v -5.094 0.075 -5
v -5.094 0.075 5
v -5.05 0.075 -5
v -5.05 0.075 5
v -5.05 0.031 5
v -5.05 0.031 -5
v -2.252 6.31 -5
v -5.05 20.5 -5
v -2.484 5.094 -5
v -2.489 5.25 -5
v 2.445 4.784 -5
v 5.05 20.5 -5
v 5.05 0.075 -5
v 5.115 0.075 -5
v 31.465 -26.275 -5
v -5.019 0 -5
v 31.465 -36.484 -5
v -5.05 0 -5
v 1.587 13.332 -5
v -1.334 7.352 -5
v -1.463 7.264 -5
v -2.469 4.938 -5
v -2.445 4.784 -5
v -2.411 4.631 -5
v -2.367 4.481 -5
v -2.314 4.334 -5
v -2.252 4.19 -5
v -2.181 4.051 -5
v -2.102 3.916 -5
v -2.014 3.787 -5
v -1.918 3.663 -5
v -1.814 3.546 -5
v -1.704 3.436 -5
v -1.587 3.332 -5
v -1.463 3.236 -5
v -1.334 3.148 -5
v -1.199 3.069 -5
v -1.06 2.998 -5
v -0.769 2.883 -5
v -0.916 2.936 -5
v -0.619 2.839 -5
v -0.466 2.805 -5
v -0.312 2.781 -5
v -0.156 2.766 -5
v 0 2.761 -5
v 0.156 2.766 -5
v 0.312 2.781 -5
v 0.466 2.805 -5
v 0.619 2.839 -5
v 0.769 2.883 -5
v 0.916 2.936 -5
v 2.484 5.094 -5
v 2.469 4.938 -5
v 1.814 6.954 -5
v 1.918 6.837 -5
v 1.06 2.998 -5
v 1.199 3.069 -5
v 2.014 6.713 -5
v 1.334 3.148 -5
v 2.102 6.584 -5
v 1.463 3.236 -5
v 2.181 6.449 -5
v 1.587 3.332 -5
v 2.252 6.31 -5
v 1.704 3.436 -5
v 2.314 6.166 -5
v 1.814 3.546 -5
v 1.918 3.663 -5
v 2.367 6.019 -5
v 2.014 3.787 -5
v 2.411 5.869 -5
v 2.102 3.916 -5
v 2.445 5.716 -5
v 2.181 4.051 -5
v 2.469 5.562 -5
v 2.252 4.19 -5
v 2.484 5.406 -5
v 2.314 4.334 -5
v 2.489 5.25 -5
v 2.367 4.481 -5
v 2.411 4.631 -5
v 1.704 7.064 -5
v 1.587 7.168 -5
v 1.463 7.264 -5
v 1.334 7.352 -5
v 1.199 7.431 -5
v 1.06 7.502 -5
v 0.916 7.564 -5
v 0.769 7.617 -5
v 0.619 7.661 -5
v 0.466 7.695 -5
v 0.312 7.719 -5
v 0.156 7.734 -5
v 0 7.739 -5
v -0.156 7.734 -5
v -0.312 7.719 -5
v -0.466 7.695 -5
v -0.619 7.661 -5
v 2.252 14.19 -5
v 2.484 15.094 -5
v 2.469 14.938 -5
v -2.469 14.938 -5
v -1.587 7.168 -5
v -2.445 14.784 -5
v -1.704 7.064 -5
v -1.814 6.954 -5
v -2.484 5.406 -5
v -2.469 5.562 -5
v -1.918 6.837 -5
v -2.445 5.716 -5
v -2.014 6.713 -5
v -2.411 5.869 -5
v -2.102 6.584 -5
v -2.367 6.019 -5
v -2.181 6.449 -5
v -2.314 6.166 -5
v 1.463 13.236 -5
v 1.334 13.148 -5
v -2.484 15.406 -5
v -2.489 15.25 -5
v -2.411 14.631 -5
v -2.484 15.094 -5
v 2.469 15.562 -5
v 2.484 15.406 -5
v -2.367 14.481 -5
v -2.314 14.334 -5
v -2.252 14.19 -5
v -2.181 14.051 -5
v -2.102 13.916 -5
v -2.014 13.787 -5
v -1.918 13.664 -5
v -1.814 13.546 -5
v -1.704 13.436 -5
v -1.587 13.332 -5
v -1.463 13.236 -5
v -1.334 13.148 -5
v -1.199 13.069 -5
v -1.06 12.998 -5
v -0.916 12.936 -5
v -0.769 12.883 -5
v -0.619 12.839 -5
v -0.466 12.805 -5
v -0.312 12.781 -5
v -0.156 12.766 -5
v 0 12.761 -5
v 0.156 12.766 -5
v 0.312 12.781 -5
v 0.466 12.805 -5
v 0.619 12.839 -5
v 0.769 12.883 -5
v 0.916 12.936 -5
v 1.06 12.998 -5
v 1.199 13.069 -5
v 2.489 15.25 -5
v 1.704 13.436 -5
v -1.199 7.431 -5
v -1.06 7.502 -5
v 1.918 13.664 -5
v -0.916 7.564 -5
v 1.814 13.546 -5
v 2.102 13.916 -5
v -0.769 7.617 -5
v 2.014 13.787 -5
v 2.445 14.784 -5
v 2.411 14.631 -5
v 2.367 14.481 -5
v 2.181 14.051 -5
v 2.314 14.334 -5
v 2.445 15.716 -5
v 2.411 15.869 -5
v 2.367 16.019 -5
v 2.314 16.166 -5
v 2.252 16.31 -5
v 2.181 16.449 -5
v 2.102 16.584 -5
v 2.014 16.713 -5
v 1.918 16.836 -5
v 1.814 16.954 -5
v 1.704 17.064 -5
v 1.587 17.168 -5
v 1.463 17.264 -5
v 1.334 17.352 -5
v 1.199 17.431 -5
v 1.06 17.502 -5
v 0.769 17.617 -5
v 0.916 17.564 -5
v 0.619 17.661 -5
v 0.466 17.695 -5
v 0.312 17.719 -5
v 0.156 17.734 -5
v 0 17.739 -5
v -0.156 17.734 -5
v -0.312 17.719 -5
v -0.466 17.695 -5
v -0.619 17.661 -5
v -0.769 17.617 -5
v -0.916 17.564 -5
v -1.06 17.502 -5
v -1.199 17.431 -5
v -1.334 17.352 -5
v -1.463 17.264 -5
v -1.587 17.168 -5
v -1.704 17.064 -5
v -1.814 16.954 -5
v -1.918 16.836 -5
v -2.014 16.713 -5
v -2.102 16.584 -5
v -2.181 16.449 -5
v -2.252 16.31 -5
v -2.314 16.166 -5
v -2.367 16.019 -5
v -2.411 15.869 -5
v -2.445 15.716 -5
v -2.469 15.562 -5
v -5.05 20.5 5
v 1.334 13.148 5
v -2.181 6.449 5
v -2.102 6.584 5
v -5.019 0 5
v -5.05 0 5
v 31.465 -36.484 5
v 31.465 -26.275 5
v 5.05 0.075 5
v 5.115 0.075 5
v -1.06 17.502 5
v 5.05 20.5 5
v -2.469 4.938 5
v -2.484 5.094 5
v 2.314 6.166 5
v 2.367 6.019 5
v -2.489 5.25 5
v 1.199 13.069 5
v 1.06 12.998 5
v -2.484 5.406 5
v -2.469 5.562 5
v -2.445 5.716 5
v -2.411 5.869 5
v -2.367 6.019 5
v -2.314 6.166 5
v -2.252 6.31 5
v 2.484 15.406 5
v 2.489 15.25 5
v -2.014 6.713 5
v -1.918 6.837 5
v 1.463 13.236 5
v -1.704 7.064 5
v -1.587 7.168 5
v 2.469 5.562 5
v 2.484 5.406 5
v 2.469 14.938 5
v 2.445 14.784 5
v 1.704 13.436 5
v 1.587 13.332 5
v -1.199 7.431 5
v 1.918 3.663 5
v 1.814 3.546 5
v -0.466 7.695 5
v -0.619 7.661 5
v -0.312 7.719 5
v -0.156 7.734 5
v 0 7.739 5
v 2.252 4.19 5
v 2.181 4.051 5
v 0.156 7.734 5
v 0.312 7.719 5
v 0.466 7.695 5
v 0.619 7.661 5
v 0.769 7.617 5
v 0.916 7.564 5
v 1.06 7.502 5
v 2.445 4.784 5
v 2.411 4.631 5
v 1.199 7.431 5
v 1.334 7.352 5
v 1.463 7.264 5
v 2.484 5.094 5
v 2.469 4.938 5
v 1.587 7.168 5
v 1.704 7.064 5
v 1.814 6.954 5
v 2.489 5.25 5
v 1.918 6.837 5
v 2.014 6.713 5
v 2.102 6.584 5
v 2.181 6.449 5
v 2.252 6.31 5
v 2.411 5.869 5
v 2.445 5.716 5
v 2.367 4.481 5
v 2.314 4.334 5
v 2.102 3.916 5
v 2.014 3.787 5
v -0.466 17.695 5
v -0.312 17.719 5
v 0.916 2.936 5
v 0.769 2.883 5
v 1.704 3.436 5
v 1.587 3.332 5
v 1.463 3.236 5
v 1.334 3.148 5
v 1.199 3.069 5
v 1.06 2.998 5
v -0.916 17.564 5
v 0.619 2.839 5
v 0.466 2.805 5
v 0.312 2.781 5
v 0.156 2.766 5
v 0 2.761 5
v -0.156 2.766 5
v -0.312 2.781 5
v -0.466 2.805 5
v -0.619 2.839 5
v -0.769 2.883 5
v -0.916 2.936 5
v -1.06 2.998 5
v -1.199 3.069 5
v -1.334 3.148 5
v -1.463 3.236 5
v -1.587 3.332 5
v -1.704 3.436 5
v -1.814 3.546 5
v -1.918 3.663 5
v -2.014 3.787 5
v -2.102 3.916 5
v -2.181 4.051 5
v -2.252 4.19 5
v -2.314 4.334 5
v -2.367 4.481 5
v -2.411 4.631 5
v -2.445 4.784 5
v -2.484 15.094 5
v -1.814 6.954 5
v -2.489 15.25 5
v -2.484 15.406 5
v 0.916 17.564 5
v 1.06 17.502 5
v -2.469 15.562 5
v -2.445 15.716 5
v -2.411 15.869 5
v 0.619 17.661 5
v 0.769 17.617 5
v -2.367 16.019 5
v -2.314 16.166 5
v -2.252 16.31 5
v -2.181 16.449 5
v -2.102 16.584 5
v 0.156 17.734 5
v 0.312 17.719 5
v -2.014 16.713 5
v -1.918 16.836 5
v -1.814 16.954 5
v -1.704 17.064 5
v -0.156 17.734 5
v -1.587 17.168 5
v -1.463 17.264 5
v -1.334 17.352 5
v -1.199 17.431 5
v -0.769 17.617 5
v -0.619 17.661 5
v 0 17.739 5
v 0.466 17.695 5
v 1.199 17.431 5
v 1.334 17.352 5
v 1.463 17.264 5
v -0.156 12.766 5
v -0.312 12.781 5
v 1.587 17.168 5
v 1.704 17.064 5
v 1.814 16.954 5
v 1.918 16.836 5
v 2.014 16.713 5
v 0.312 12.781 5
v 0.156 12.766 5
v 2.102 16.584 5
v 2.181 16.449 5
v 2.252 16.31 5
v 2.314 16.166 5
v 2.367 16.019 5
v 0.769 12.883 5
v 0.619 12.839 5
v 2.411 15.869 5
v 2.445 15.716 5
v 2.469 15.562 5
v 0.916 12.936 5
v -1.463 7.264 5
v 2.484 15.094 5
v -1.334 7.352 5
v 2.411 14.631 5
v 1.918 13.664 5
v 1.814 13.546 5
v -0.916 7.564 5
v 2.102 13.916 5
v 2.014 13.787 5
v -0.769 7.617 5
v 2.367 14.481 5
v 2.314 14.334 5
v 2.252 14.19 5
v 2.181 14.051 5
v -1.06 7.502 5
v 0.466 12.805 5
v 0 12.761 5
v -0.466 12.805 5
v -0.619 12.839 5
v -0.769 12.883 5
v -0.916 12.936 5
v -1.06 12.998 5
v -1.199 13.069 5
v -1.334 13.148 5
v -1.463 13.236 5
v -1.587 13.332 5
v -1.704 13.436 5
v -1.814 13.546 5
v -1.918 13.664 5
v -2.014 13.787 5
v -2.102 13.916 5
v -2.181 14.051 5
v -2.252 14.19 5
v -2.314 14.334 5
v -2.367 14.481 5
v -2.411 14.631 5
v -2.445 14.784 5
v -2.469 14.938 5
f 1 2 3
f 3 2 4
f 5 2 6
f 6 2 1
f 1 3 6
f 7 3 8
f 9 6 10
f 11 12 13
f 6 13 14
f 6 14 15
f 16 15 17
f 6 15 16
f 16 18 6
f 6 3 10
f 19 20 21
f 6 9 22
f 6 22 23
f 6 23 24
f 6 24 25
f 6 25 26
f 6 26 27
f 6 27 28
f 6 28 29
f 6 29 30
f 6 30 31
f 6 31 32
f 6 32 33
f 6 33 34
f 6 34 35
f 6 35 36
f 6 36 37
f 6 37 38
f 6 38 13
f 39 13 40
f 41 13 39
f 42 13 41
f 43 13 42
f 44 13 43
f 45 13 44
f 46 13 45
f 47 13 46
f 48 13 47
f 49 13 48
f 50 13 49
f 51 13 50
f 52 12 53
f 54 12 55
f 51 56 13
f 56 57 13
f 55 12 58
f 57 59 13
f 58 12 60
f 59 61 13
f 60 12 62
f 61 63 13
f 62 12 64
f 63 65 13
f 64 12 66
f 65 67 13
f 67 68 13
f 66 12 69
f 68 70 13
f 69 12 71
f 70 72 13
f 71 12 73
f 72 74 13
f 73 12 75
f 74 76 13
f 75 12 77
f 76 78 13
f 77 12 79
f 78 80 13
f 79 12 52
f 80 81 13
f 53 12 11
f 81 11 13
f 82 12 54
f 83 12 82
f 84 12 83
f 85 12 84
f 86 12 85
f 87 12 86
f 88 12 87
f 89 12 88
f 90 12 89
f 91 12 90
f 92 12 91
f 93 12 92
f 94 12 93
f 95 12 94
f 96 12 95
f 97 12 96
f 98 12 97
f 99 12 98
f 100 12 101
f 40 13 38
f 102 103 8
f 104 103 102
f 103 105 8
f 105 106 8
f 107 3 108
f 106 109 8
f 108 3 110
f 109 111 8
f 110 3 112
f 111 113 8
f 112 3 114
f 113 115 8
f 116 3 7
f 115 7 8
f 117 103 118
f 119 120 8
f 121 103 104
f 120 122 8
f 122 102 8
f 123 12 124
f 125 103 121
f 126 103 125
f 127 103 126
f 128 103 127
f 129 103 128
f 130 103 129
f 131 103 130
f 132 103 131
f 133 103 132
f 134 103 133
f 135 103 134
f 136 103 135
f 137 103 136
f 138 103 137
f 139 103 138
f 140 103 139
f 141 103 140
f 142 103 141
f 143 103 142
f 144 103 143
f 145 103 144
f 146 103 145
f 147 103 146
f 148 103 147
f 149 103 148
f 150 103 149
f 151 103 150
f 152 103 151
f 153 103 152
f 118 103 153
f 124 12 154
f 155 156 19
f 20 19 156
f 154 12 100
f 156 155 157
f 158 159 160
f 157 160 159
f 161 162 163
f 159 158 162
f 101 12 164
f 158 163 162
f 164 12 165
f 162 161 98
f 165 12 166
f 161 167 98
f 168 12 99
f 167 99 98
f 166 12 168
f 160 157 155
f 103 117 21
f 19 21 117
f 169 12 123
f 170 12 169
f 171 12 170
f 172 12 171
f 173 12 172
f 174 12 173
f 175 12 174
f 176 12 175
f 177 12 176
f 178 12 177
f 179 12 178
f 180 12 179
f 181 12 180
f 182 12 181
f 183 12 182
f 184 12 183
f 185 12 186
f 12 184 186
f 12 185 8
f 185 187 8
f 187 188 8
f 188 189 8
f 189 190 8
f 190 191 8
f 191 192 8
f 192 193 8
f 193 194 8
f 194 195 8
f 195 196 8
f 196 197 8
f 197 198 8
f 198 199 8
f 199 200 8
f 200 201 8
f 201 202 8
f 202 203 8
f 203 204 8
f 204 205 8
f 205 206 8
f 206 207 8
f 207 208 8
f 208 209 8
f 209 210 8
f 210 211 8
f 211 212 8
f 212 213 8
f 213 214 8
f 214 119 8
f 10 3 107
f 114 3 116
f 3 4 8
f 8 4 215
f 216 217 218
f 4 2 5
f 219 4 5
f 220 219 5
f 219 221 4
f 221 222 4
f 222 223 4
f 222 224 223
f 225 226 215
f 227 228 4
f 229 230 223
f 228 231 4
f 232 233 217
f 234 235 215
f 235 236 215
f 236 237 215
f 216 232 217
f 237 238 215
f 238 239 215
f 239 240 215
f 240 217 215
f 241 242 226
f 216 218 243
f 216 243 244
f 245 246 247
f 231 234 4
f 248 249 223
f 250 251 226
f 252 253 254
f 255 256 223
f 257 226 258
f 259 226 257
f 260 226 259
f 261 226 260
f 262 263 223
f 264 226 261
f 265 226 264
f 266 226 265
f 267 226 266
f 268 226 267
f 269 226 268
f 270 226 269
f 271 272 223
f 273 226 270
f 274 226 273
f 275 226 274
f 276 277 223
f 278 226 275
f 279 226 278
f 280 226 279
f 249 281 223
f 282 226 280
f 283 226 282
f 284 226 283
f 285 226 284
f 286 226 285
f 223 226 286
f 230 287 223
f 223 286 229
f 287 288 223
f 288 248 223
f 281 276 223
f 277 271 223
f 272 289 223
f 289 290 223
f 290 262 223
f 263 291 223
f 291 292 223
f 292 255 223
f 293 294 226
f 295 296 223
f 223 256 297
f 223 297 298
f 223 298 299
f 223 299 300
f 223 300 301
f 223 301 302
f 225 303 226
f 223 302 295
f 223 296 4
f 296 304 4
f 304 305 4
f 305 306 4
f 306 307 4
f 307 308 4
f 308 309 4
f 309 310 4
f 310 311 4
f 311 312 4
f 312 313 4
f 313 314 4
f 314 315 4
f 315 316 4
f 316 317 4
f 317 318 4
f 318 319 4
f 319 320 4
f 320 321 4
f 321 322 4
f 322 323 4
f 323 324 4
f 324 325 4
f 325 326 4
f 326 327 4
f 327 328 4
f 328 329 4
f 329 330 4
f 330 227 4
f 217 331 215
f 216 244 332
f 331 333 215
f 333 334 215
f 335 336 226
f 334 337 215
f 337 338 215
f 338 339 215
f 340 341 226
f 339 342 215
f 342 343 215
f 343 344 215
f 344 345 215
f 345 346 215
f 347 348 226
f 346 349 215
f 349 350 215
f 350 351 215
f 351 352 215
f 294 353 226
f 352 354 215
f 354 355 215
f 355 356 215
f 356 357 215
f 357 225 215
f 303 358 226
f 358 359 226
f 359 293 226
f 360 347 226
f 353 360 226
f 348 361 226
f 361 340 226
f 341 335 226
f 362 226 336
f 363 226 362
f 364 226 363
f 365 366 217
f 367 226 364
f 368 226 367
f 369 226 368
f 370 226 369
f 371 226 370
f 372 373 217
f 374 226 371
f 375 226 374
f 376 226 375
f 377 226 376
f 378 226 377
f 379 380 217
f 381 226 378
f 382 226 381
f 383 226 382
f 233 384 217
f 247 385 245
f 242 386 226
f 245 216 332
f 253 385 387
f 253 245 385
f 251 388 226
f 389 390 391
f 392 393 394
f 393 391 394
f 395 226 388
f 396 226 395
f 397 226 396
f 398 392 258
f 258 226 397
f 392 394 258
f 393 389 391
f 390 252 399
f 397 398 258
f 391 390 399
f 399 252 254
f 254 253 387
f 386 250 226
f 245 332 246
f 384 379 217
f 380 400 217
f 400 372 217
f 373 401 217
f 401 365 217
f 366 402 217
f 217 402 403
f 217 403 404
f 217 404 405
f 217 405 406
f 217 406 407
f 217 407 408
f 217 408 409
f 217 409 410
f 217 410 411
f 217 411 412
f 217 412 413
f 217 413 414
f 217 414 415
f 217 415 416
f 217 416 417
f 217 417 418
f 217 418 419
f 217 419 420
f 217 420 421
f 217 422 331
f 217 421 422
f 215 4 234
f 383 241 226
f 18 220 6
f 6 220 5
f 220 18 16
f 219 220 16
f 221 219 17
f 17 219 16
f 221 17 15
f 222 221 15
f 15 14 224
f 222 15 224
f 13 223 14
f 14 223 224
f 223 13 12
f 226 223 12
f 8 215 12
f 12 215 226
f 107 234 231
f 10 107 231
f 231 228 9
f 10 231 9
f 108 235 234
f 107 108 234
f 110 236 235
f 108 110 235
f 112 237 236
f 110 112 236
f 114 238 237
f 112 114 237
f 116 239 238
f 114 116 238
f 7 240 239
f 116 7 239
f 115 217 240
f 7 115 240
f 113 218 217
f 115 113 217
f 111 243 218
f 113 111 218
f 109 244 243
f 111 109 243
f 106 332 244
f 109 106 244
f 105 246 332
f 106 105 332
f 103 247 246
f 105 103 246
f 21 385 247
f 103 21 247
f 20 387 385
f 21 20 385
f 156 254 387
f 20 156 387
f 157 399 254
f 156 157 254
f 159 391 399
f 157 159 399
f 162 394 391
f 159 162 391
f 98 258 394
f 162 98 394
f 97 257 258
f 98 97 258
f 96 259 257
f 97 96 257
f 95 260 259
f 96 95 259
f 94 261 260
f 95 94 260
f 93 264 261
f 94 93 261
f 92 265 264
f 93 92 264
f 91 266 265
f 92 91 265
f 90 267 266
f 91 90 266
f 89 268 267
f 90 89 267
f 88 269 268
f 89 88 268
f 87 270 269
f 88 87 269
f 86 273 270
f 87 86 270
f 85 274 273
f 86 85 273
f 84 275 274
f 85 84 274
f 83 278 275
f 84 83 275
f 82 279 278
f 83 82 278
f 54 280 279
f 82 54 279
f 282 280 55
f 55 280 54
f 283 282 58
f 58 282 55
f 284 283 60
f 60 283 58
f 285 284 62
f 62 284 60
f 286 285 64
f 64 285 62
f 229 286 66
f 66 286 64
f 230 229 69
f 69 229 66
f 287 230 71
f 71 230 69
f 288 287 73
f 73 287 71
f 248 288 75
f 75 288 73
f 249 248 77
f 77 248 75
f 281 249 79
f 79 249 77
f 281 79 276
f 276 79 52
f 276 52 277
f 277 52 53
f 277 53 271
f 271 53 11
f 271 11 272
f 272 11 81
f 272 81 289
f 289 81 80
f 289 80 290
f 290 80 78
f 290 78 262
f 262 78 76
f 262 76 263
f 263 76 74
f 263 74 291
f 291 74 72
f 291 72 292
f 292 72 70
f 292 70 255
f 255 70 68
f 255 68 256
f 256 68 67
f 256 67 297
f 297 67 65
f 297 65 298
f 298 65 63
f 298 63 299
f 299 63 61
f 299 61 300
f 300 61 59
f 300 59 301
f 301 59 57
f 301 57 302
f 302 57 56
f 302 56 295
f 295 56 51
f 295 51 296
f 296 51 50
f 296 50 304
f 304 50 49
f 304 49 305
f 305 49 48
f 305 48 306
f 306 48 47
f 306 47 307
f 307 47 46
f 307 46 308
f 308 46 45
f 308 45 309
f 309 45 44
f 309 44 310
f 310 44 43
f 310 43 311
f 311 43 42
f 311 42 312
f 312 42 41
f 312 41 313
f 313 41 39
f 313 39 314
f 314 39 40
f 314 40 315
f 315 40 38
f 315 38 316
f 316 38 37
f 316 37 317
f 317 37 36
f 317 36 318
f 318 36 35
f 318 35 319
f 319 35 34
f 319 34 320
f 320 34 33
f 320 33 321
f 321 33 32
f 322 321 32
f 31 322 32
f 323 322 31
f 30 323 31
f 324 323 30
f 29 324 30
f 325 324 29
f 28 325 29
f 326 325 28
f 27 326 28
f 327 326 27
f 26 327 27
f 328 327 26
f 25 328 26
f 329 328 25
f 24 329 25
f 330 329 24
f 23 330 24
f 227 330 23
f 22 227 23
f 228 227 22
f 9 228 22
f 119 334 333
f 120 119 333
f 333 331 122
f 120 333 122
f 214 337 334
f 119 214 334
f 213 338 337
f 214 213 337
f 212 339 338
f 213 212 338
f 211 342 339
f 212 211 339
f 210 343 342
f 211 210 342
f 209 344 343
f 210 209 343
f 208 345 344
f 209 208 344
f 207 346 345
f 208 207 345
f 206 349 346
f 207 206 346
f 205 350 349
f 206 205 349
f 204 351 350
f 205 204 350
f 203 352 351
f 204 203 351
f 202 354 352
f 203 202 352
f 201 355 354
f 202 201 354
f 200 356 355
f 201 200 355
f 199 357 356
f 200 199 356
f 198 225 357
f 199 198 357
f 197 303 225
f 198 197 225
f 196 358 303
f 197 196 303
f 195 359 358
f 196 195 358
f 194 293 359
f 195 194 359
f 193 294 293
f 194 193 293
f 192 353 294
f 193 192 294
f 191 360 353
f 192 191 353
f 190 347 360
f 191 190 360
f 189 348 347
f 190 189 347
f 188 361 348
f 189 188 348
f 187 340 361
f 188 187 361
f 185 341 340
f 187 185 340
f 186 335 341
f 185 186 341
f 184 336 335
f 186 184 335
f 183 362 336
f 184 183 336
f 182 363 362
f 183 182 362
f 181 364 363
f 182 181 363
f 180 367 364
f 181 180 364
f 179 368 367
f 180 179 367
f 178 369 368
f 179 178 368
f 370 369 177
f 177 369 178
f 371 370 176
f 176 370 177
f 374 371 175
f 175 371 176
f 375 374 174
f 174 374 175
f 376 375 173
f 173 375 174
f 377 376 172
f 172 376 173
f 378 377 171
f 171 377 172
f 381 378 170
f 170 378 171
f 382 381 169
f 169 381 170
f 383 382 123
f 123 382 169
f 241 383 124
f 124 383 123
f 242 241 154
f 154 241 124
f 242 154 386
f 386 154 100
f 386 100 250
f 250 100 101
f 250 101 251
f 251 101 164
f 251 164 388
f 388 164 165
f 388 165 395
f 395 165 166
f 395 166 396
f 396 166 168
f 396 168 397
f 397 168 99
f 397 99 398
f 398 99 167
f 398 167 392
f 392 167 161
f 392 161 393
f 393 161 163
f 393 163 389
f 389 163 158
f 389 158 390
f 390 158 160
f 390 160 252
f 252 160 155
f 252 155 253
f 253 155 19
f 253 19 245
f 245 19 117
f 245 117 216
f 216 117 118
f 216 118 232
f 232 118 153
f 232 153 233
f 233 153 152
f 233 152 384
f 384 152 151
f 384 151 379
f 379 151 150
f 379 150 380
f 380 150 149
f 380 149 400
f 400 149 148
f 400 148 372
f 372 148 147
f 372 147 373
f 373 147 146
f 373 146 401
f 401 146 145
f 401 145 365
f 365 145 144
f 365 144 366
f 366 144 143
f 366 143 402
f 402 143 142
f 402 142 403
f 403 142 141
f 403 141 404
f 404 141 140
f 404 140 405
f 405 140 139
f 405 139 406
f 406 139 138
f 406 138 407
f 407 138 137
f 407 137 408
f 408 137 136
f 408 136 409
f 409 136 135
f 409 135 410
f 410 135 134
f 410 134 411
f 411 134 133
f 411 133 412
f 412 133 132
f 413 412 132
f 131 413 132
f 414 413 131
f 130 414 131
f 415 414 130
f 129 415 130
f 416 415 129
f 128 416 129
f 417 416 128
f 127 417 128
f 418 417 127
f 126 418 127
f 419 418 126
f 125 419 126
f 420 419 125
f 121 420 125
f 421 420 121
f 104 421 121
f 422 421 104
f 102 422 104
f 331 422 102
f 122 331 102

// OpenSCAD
// file: ucon_config.scad
tubeOD = 23.768;	//0.92", thin-wall 3/4" conduit +0.4 clearance
tubeID = 20.828;	// 0.82", thin-wall 3/4" conduit
wallthick = 7;		// wall thickness for the tube
clearOD = 0.5;		// tube clearance
screwOD = 4.7;		// clearance for M4 or SAE size 8 screw
screwthick = 3;		// wall thickness for the screw
totalheight = 25;
clearance = 0.5;
oringthick = 2.5;
oringOD = 28.702;	// oring size 119 (use 118 for build)
overlap = 0.05;
clearlen = 5;

ctcdist = 50;
// main file
include <ucon_config.scad>
use <ucon_functions.scad>
use <MCAD/motors.scad>
use <MCAD/nuts_and_bolts.scad>

$fn=100;


module rtriangle(side,thickness){
difference(){
cube([side,side,thickness],center=true);
translate(sqrt(2)*side/4*[1,-1,0]) rotate([0,0,45]) cube([4*side,side,thickness+0.2],center=true);
}}

translate([0,10.25,0])
difference(){
cube([10.1,20.5,10],center=true);
translate([0,5,-8]) boltHole(4,units="MM",length=30,tolerance=0.5);
translate([0,-5,-8]) boltHole(4,units="MM",length=30,tolerance=0.5);
}

translate([10.29,-21.1,0]) rotate([0,0,180])
difference(){
cube([42.35,42.35,10],center=true);
translate([10.7,9.0,0]) rotate([0,0,45]) cube([36.05,88.05,50],center=true);
translate([-8,-8,0]) rotate([0,0,90]) rtriangle(26.5,50);
}
//translate([10.29,-21,0]) rotate([0,0,180]) translate([10.7,9.7,0]) rotate([0,0,45]) cube([37.05,87.05,50],center=true);
